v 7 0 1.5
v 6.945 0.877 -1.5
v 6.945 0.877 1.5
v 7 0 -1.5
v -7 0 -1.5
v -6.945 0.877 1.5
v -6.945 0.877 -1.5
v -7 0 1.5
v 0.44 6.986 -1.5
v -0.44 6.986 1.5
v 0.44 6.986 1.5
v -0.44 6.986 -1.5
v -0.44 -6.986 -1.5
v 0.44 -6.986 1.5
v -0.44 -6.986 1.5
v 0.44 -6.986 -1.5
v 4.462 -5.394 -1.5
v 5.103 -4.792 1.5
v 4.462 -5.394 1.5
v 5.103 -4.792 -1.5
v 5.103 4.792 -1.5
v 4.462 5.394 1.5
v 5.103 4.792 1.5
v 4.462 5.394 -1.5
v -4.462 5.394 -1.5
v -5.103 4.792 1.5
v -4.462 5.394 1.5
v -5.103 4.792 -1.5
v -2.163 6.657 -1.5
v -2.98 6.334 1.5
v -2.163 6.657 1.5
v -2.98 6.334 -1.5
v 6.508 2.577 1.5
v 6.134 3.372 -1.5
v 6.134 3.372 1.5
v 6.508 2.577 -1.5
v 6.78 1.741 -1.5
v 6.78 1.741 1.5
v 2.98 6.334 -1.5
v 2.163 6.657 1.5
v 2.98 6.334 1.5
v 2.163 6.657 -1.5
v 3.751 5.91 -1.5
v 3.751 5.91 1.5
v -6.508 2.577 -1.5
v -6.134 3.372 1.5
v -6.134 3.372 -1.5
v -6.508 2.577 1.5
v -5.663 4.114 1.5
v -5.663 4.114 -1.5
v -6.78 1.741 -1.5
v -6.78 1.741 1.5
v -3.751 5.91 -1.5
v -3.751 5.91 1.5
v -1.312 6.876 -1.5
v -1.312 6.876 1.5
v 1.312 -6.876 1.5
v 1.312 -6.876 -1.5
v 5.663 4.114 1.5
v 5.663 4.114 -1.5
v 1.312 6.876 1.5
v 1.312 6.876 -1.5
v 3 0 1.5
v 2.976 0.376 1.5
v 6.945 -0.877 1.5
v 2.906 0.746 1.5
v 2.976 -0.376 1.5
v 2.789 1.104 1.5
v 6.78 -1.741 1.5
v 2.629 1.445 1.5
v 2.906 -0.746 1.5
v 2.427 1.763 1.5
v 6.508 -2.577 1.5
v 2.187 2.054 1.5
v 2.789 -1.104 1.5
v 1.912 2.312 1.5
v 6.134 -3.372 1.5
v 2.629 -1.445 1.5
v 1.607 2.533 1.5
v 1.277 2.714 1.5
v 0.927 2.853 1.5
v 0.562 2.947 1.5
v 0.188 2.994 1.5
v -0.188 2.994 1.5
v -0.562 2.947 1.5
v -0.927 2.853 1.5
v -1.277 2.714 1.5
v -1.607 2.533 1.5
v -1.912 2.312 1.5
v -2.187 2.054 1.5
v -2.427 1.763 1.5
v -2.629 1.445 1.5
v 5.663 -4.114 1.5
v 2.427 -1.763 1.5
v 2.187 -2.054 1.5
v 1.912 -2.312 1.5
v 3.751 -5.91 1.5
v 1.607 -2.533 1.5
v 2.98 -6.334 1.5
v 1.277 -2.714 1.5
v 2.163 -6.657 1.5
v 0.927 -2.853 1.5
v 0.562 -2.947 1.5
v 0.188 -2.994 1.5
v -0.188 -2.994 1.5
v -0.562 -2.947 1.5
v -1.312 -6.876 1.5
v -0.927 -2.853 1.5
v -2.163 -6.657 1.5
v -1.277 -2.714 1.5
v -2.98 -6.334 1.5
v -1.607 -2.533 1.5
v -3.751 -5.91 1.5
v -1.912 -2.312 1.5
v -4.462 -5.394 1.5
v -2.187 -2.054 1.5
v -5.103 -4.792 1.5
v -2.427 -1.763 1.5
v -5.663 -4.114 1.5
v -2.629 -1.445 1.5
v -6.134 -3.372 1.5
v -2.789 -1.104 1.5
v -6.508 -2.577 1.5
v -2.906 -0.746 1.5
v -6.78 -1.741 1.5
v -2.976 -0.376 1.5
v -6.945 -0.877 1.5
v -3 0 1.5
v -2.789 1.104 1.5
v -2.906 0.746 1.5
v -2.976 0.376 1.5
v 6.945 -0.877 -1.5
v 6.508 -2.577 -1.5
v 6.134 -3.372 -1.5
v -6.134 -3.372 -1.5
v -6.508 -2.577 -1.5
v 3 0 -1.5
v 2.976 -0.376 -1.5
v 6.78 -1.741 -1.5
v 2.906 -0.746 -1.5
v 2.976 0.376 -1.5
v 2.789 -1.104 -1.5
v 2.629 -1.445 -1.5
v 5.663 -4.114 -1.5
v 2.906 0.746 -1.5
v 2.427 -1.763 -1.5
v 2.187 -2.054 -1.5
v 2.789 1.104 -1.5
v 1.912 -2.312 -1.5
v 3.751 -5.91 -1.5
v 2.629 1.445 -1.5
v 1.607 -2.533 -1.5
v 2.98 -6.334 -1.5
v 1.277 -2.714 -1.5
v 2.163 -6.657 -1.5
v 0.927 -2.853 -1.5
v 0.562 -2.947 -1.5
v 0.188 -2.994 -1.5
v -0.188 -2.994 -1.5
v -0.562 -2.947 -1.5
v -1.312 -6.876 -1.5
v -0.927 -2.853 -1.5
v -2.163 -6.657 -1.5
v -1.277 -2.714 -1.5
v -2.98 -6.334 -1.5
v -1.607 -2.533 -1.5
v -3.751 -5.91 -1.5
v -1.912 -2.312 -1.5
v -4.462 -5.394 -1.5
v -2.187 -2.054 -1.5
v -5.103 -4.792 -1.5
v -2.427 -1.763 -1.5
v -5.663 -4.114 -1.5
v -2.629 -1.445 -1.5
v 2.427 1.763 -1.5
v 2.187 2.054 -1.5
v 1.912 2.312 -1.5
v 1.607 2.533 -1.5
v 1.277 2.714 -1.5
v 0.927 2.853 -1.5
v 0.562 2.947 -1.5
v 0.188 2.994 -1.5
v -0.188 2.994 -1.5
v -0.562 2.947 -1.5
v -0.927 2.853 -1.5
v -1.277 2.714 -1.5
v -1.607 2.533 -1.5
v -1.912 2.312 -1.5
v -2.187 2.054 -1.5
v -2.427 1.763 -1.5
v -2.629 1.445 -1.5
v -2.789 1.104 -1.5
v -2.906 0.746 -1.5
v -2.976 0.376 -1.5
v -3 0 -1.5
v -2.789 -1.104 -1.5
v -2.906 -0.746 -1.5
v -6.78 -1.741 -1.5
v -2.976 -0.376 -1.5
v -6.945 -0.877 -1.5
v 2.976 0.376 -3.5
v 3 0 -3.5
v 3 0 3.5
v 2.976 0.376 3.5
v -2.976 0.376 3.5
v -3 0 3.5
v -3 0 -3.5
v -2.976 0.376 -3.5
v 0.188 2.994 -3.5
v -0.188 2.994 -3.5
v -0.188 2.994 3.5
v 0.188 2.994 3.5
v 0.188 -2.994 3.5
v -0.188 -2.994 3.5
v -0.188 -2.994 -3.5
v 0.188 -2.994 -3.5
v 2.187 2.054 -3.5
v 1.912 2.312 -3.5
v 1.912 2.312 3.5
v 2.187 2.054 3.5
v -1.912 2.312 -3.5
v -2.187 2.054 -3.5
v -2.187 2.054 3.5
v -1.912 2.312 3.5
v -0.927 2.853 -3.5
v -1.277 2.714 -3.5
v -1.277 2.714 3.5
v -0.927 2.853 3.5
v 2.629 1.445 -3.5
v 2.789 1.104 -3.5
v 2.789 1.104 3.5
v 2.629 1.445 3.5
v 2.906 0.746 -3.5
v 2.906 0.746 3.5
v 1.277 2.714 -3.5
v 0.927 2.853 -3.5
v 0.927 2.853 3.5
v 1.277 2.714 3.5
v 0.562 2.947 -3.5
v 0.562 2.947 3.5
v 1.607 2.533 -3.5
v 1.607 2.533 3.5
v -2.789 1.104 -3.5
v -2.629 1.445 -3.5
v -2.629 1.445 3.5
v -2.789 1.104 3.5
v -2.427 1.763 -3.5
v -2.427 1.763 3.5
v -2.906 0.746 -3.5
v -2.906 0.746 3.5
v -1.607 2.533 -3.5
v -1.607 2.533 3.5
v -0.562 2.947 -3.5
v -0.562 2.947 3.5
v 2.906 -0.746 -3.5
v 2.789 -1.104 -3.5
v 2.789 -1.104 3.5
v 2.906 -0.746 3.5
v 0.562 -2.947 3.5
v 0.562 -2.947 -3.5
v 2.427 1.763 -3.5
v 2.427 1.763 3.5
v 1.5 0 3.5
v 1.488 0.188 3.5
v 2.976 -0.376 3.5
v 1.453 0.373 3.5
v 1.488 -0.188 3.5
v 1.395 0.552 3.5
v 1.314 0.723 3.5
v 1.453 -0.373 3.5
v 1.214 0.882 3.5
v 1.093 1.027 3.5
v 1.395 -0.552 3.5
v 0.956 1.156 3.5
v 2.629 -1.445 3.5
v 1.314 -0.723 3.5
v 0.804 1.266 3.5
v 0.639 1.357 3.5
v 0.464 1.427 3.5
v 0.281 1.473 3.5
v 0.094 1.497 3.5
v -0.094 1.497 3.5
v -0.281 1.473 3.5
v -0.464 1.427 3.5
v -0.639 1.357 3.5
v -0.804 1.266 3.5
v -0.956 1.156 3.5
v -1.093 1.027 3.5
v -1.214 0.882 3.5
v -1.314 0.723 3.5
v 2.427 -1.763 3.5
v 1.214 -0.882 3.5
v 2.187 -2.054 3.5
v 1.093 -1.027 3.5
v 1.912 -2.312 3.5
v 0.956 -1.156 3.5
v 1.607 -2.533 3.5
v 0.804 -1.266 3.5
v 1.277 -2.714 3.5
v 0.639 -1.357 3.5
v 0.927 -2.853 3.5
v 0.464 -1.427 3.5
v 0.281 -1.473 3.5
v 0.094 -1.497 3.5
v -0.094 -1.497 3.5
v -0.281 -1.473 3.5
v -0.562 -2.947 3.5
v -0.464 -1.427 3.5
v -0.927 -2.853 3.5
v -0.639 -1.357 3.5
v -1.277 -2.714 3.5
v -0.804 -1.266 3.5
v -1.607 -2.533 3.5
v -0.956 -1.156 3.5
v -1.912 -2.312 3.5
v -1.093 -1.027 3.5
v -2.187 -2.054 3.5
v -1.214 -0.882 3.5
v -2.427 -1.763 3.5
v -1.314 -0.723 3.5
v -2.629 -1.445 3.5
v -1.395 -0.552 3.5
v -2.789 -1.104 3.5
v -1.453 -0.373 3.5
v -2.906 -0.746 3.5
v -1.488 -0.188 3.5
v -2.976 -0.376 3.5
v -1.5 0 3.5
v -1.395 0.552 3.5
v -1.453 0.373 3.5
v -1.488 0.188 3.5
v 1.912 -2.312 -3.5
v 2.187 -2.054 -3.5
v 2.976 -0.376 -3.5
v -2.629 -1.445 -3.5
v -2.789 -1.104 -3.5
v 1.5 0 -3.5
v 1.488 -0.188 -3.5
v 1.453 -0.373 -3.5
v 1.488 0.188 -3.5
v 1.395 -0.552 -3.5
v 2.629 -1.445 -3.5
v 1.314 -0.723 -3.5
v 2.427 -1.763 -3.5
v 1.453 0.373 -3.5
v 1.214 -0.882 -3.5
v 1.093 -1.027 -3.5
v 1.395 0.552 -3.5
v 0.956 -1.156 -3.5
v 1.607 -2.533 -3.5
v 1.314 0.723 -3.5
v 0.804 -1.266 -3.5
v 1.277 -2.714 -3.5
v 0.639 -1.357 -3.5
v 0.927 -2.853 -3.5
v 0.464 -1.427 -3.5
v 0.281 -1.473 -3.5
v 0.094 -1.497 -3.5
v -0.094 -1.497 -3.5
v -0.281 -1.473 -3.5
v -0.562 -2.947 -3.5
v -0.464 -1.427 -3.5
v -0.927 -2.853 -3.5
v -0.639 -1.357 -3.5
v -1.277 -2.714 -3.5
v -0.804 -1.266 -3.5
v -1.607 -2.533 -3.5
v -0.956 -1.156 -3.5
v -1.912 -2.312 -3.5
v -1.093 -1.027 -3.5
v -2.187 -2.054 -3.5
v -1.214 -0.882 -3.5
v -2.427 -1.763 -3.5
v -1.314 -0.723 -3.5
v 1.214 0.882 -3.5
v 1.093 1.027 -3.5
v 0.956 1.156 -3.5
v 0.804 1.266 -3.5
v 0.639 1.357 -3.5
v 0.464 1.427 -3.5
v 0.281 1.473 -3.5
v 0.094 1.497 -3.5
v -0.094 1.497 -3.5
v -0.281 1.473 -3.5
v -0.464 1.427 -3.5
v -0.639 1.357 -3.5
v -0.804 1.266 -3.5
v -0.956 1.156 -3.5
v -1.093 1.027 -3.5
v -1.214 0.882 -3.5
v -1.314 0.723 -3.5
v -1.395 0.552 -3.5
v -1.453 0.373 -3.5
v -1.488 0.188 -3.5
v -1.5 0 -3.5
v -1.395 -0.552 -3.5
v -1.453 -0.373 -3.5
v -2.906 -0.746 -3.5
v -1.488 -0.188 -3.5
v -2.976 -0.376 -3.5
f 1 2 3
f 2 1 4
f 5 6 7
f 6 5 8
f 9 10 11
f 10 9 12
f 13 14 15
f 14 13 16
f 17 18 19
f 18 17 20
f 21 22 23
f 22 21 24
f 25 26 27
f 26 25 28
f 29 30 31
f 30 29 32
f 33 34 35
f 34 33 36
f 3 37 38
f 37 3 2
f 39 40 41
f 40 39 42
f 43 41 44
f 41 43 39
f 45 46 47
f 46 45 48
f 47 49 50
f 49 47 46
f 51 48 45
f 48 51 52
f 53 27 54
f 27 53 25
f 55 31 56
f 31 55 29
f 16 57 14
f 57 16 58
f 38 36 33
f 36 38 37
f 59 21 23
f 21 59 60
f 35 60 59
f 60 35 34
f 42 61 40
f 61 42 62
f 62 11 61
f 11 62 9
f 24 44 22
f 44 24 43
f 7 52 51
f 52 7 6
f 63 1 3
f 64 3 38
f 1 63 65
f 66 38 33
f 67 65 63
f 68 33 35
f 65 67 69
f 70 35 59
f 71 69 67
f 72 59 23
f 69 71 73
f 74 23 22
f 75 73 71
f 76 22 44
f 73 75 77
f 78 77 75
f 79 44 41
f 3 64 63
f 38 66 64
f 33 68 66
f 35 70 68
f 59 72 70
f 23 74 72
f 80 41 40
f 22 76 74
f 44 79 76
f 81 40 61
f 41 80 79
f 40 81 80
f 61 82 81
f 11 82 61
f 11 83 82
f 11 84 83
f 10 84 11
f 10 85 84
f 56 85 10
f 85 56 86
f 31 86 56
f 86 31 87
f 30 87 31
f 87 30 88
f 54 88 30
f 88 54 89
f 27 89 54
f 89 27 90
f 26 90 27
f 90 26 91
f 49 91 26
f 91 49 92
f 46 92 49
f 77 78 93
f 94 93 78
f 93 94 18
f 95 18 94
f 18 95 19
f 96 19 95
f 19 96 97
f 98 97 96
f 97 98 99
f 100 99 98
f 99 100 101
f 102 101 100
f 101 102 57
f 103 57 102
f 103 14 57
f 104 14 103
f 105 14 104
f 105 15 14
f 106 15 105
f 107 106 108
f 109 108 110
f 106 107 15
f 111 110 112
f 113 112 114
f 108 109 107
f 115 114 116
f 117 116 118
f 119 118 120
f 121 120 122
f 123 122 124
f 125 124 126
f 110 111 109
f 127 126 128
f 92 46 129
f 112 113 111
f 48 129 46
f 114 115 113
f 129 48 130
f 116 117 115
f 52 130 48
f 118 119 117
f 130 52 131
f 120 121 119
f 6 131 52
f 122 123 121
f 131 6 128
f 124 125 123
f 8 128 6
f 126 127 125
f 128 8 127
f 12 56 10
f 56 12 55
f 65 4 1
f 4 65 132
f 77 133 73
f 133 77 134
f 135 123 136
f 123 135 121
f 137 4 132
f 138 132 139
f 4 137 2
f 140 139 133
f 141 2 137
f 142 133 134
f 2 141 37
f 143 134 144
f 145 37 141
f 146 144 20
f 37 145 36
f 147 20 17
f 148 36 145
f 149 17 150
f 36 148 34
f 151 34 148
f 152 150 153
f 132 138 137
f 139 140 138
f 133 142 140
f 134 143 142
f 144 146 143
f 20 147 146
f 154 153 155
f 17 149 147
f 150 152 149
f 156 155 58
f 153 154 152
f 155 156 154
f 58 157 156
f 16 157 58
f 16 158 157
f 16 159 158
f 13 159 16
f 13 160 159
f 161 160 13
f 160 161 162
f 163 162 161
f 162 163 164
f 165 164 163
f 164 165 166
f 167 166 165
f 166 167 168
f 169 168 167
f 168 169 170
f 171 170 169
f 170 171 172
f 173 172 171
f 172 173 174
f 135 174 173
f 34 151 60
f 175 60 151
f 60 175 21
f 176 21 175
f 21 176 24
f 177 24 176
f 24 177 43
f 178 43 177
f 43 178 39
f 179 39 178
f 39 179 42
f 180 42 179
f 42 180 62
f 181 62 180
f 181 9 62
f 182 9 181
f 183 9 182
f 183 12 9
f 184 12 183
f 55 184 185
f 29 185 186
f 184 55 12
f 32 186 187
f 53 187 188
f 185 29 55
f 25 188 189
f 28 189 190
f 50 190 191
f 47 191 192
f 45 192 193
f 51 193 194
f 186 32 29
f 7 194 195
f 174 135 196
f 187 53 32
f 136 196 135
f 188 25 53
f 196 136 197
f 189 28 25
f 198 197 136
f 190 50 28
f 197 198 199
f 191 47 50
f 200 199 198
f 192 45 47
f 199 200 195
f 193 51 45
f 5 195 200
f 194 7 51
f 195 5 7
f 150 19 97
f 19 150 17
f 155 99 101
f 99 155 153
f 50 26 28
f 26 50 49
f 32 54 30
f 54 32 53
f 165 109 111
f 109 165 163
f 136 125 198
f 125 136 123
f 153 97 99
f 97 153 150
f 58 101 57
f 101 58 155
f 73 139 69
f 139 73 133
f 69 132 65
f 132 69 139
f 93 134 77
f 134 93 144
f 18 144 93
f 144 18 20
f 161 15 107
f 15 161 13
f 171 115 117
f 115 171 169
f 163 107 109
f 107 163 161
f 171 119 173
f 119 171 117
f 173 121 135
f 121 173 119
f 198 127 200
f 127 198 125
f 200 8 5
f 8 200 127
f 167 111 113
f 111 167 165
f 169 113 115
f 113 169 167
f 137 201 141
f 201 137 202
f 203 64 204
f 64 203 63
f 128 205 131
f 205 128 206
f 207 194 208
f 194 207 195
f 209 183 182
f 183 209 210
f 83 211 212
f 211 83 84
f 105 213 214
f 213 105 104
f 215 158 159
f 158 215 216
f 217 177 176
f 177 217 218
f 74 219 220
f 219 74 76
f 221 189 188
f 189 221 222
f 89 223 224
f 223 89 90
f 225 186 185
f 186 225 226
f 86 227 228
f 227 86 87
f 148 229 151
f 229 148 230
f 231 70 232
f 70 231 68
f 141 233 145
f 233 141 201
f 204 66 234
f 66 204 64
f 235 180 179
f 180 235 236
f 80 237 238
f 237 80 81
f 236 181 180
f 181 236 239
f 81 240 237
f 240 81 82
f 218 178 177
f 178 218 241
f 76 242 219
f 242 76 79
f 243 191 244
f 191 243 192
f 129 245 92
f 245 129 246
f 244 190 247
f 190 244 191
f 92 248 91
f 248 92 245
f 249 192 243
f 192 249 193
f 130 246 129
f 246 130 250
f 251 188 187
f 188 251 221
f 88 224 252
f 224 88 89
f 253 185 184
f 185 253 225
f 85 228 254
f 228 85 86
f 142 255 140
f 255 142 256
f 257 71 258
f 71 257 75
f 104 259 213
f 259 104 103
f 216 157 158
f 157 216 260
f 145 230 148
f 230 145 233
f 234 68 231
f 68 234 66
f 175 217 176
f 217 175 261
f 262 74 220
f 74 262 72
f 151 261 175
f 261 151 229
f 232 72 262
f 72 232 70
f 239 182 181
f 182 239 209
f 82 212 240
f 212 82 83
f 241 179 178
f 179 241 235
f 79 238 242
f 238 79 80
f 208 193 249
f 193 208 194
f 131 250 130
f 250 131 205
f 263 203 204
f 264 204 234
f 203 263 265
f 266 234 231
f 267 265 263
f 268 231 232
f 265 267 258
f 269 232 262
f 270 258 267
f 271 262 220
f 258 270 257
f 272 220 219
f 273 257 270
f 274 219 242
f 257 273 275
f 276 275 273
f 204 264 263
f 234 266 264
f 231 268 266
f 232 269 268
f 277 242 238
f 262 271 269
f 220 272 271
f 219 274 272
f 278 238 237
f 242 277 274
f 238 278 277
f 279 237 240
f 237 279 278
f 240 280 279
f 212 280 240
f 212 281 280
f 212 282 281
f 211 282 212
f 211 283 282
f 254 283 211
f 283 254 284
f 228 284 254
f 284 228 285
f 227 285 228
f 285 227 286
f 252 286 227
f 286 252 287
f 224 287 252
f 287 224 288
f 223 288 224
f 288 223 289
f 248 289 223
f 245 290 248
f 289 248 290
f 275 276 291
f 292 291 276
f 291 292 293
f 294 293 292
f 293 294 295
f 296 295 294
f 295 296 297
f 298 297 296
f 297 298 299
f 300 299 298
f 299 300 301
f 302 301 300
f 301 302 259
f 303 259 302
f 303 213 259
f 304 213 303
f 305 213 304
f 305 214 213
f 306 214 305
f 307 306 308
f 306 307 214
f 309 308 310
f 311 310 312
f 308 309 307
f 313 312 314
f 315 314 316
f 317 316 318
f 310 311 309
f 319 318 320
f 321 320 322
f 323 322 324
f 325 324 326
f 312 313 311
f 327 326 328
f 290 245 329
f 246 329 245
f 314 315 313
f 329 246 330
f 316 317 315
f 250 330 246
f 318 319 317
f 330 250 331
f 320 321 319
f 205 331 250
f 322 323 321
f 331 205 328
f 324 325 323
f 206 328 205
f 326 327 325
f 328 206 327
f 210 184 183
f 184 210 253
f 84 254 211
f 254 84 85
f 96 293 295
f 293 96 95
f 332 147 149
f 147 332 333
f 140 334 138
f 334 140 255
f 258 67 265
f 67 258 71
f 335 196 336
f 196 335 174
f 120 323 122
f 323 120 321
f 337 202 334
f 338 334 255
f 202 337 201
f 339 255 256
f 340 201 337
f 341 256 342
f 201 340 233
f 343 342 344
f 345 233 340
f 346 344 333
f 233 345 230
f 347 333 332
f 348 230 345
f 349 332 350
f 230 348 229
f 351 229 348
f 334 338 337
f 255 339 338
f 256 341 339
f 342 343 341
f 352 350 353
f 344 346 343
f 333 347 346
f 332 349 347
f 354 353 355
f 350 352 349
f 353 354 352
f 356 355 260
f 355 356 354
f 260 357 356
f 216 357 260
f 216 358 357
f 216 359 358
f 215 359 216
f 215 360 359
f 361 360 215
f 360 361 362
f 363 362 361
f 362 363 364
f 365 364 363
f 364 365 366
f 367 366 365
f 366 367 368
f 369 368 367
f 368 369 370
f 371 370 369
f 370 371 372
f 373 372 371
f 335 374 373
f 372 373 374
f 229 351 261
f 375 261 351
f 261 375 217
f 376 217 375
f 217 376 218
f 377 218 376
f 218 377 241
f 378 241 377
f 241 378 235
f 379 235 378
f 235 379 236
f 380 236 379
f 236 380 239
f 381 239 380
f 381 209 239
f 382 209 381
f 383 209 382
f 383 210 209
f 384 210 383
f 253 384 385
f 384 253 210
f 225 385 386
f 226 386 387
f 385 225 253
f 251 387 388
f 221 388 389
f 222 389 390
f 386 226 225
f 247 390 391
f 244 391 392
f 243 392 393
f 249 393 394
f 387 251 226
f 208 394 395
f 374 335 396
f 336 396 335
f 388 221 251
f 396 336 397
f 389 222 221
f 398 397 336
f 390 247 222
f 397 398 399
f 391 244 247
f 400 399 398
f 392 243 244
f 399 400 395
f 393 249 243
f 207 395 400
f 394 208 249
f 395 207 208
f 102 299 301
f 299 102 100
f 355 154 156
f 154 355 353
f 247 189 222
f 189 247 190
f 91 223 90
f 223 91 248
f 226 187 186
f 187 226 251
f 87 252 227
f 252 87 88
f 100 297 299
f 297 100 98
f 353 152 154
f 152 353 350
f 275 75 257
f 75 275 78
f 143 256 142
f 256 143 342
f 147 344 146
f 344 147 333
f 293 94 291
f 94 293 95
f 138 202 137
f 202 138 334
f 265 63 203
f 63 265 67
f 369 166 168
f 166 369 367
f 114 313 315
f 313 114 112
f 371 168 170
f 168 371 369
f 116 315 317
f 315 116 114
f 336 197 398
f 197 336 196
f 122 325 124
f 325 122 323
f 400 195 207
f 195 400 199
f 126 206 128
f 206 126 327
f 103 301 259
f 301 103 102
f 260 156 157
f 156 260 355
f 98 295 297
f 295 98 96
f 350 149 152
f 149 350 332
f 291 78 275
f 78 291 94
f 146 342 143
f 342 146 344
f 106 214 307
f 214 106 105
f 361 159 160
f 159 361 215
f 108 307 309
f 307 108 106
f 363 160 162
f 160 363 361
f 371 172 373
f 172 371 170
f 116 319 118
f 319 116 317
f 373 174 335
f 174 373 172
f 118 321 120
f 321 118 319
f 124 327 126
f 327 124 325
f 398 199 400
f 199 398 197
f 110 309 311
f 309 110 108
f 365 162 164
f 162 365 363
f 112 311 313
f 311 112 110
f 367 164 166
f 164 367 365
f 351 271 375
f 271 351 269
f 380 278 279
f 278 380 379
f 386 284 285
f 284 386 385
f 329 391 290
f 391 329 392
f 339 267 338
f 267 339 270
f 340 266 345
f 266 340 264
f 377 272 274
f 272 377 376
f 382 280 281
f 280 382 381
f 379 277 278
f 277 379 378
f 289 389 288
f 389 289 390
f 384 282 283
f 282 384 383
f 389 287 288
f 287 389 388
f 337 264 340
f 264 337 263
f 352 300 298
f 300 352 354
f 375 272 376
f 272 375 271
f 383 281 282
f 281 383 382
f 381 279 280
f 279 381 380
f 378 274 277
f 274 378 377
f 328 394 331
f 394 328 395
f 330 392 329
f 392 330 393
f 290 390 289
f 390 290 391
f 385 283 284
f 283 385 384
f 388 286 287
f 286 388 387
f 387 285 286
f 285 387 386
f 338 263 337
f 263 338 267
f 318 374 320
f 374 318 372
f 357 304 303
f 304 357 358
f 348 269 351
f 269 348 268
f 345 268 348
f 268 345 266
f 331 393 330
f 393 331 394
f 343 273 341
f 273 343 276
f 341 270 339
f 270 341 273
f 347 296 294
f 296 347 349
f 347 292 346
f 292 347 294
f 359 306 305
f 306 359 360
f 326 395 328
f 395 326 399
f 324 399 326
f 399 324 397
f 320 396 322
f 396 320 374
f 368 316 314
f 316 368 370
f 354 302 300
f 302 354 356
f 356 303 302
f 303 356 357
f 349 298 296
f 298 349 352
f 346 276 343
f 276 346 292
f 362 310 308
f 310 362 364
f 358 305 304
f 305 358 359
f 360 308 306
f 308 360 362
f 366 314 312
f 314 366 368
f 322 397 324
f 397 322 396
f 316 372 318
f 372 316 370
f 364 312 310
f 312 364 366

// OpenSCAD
$fn = 50;


difference() {
	union() {
		translate(v = [0, 0, -1.5000000000]) {
			rotate(a = [0, 0, 0]) {
				cylinder(h = 3, r = 7.0000000000);
			}
		}
		translate(v = [0, 0, -3.5000000000]) {
			rotate(a = [0, 0, 0]) {
				cylinder(h = 7, r = 3.0000000000);
			}
		}
	}
	union() {
		translate(v = [0, 0, -125.0000000000]) {
			rotate(a = [0, 0, 0]) {
				cylinder(h = 250, r = 1.5000000000);
			}
		}
	}
}
